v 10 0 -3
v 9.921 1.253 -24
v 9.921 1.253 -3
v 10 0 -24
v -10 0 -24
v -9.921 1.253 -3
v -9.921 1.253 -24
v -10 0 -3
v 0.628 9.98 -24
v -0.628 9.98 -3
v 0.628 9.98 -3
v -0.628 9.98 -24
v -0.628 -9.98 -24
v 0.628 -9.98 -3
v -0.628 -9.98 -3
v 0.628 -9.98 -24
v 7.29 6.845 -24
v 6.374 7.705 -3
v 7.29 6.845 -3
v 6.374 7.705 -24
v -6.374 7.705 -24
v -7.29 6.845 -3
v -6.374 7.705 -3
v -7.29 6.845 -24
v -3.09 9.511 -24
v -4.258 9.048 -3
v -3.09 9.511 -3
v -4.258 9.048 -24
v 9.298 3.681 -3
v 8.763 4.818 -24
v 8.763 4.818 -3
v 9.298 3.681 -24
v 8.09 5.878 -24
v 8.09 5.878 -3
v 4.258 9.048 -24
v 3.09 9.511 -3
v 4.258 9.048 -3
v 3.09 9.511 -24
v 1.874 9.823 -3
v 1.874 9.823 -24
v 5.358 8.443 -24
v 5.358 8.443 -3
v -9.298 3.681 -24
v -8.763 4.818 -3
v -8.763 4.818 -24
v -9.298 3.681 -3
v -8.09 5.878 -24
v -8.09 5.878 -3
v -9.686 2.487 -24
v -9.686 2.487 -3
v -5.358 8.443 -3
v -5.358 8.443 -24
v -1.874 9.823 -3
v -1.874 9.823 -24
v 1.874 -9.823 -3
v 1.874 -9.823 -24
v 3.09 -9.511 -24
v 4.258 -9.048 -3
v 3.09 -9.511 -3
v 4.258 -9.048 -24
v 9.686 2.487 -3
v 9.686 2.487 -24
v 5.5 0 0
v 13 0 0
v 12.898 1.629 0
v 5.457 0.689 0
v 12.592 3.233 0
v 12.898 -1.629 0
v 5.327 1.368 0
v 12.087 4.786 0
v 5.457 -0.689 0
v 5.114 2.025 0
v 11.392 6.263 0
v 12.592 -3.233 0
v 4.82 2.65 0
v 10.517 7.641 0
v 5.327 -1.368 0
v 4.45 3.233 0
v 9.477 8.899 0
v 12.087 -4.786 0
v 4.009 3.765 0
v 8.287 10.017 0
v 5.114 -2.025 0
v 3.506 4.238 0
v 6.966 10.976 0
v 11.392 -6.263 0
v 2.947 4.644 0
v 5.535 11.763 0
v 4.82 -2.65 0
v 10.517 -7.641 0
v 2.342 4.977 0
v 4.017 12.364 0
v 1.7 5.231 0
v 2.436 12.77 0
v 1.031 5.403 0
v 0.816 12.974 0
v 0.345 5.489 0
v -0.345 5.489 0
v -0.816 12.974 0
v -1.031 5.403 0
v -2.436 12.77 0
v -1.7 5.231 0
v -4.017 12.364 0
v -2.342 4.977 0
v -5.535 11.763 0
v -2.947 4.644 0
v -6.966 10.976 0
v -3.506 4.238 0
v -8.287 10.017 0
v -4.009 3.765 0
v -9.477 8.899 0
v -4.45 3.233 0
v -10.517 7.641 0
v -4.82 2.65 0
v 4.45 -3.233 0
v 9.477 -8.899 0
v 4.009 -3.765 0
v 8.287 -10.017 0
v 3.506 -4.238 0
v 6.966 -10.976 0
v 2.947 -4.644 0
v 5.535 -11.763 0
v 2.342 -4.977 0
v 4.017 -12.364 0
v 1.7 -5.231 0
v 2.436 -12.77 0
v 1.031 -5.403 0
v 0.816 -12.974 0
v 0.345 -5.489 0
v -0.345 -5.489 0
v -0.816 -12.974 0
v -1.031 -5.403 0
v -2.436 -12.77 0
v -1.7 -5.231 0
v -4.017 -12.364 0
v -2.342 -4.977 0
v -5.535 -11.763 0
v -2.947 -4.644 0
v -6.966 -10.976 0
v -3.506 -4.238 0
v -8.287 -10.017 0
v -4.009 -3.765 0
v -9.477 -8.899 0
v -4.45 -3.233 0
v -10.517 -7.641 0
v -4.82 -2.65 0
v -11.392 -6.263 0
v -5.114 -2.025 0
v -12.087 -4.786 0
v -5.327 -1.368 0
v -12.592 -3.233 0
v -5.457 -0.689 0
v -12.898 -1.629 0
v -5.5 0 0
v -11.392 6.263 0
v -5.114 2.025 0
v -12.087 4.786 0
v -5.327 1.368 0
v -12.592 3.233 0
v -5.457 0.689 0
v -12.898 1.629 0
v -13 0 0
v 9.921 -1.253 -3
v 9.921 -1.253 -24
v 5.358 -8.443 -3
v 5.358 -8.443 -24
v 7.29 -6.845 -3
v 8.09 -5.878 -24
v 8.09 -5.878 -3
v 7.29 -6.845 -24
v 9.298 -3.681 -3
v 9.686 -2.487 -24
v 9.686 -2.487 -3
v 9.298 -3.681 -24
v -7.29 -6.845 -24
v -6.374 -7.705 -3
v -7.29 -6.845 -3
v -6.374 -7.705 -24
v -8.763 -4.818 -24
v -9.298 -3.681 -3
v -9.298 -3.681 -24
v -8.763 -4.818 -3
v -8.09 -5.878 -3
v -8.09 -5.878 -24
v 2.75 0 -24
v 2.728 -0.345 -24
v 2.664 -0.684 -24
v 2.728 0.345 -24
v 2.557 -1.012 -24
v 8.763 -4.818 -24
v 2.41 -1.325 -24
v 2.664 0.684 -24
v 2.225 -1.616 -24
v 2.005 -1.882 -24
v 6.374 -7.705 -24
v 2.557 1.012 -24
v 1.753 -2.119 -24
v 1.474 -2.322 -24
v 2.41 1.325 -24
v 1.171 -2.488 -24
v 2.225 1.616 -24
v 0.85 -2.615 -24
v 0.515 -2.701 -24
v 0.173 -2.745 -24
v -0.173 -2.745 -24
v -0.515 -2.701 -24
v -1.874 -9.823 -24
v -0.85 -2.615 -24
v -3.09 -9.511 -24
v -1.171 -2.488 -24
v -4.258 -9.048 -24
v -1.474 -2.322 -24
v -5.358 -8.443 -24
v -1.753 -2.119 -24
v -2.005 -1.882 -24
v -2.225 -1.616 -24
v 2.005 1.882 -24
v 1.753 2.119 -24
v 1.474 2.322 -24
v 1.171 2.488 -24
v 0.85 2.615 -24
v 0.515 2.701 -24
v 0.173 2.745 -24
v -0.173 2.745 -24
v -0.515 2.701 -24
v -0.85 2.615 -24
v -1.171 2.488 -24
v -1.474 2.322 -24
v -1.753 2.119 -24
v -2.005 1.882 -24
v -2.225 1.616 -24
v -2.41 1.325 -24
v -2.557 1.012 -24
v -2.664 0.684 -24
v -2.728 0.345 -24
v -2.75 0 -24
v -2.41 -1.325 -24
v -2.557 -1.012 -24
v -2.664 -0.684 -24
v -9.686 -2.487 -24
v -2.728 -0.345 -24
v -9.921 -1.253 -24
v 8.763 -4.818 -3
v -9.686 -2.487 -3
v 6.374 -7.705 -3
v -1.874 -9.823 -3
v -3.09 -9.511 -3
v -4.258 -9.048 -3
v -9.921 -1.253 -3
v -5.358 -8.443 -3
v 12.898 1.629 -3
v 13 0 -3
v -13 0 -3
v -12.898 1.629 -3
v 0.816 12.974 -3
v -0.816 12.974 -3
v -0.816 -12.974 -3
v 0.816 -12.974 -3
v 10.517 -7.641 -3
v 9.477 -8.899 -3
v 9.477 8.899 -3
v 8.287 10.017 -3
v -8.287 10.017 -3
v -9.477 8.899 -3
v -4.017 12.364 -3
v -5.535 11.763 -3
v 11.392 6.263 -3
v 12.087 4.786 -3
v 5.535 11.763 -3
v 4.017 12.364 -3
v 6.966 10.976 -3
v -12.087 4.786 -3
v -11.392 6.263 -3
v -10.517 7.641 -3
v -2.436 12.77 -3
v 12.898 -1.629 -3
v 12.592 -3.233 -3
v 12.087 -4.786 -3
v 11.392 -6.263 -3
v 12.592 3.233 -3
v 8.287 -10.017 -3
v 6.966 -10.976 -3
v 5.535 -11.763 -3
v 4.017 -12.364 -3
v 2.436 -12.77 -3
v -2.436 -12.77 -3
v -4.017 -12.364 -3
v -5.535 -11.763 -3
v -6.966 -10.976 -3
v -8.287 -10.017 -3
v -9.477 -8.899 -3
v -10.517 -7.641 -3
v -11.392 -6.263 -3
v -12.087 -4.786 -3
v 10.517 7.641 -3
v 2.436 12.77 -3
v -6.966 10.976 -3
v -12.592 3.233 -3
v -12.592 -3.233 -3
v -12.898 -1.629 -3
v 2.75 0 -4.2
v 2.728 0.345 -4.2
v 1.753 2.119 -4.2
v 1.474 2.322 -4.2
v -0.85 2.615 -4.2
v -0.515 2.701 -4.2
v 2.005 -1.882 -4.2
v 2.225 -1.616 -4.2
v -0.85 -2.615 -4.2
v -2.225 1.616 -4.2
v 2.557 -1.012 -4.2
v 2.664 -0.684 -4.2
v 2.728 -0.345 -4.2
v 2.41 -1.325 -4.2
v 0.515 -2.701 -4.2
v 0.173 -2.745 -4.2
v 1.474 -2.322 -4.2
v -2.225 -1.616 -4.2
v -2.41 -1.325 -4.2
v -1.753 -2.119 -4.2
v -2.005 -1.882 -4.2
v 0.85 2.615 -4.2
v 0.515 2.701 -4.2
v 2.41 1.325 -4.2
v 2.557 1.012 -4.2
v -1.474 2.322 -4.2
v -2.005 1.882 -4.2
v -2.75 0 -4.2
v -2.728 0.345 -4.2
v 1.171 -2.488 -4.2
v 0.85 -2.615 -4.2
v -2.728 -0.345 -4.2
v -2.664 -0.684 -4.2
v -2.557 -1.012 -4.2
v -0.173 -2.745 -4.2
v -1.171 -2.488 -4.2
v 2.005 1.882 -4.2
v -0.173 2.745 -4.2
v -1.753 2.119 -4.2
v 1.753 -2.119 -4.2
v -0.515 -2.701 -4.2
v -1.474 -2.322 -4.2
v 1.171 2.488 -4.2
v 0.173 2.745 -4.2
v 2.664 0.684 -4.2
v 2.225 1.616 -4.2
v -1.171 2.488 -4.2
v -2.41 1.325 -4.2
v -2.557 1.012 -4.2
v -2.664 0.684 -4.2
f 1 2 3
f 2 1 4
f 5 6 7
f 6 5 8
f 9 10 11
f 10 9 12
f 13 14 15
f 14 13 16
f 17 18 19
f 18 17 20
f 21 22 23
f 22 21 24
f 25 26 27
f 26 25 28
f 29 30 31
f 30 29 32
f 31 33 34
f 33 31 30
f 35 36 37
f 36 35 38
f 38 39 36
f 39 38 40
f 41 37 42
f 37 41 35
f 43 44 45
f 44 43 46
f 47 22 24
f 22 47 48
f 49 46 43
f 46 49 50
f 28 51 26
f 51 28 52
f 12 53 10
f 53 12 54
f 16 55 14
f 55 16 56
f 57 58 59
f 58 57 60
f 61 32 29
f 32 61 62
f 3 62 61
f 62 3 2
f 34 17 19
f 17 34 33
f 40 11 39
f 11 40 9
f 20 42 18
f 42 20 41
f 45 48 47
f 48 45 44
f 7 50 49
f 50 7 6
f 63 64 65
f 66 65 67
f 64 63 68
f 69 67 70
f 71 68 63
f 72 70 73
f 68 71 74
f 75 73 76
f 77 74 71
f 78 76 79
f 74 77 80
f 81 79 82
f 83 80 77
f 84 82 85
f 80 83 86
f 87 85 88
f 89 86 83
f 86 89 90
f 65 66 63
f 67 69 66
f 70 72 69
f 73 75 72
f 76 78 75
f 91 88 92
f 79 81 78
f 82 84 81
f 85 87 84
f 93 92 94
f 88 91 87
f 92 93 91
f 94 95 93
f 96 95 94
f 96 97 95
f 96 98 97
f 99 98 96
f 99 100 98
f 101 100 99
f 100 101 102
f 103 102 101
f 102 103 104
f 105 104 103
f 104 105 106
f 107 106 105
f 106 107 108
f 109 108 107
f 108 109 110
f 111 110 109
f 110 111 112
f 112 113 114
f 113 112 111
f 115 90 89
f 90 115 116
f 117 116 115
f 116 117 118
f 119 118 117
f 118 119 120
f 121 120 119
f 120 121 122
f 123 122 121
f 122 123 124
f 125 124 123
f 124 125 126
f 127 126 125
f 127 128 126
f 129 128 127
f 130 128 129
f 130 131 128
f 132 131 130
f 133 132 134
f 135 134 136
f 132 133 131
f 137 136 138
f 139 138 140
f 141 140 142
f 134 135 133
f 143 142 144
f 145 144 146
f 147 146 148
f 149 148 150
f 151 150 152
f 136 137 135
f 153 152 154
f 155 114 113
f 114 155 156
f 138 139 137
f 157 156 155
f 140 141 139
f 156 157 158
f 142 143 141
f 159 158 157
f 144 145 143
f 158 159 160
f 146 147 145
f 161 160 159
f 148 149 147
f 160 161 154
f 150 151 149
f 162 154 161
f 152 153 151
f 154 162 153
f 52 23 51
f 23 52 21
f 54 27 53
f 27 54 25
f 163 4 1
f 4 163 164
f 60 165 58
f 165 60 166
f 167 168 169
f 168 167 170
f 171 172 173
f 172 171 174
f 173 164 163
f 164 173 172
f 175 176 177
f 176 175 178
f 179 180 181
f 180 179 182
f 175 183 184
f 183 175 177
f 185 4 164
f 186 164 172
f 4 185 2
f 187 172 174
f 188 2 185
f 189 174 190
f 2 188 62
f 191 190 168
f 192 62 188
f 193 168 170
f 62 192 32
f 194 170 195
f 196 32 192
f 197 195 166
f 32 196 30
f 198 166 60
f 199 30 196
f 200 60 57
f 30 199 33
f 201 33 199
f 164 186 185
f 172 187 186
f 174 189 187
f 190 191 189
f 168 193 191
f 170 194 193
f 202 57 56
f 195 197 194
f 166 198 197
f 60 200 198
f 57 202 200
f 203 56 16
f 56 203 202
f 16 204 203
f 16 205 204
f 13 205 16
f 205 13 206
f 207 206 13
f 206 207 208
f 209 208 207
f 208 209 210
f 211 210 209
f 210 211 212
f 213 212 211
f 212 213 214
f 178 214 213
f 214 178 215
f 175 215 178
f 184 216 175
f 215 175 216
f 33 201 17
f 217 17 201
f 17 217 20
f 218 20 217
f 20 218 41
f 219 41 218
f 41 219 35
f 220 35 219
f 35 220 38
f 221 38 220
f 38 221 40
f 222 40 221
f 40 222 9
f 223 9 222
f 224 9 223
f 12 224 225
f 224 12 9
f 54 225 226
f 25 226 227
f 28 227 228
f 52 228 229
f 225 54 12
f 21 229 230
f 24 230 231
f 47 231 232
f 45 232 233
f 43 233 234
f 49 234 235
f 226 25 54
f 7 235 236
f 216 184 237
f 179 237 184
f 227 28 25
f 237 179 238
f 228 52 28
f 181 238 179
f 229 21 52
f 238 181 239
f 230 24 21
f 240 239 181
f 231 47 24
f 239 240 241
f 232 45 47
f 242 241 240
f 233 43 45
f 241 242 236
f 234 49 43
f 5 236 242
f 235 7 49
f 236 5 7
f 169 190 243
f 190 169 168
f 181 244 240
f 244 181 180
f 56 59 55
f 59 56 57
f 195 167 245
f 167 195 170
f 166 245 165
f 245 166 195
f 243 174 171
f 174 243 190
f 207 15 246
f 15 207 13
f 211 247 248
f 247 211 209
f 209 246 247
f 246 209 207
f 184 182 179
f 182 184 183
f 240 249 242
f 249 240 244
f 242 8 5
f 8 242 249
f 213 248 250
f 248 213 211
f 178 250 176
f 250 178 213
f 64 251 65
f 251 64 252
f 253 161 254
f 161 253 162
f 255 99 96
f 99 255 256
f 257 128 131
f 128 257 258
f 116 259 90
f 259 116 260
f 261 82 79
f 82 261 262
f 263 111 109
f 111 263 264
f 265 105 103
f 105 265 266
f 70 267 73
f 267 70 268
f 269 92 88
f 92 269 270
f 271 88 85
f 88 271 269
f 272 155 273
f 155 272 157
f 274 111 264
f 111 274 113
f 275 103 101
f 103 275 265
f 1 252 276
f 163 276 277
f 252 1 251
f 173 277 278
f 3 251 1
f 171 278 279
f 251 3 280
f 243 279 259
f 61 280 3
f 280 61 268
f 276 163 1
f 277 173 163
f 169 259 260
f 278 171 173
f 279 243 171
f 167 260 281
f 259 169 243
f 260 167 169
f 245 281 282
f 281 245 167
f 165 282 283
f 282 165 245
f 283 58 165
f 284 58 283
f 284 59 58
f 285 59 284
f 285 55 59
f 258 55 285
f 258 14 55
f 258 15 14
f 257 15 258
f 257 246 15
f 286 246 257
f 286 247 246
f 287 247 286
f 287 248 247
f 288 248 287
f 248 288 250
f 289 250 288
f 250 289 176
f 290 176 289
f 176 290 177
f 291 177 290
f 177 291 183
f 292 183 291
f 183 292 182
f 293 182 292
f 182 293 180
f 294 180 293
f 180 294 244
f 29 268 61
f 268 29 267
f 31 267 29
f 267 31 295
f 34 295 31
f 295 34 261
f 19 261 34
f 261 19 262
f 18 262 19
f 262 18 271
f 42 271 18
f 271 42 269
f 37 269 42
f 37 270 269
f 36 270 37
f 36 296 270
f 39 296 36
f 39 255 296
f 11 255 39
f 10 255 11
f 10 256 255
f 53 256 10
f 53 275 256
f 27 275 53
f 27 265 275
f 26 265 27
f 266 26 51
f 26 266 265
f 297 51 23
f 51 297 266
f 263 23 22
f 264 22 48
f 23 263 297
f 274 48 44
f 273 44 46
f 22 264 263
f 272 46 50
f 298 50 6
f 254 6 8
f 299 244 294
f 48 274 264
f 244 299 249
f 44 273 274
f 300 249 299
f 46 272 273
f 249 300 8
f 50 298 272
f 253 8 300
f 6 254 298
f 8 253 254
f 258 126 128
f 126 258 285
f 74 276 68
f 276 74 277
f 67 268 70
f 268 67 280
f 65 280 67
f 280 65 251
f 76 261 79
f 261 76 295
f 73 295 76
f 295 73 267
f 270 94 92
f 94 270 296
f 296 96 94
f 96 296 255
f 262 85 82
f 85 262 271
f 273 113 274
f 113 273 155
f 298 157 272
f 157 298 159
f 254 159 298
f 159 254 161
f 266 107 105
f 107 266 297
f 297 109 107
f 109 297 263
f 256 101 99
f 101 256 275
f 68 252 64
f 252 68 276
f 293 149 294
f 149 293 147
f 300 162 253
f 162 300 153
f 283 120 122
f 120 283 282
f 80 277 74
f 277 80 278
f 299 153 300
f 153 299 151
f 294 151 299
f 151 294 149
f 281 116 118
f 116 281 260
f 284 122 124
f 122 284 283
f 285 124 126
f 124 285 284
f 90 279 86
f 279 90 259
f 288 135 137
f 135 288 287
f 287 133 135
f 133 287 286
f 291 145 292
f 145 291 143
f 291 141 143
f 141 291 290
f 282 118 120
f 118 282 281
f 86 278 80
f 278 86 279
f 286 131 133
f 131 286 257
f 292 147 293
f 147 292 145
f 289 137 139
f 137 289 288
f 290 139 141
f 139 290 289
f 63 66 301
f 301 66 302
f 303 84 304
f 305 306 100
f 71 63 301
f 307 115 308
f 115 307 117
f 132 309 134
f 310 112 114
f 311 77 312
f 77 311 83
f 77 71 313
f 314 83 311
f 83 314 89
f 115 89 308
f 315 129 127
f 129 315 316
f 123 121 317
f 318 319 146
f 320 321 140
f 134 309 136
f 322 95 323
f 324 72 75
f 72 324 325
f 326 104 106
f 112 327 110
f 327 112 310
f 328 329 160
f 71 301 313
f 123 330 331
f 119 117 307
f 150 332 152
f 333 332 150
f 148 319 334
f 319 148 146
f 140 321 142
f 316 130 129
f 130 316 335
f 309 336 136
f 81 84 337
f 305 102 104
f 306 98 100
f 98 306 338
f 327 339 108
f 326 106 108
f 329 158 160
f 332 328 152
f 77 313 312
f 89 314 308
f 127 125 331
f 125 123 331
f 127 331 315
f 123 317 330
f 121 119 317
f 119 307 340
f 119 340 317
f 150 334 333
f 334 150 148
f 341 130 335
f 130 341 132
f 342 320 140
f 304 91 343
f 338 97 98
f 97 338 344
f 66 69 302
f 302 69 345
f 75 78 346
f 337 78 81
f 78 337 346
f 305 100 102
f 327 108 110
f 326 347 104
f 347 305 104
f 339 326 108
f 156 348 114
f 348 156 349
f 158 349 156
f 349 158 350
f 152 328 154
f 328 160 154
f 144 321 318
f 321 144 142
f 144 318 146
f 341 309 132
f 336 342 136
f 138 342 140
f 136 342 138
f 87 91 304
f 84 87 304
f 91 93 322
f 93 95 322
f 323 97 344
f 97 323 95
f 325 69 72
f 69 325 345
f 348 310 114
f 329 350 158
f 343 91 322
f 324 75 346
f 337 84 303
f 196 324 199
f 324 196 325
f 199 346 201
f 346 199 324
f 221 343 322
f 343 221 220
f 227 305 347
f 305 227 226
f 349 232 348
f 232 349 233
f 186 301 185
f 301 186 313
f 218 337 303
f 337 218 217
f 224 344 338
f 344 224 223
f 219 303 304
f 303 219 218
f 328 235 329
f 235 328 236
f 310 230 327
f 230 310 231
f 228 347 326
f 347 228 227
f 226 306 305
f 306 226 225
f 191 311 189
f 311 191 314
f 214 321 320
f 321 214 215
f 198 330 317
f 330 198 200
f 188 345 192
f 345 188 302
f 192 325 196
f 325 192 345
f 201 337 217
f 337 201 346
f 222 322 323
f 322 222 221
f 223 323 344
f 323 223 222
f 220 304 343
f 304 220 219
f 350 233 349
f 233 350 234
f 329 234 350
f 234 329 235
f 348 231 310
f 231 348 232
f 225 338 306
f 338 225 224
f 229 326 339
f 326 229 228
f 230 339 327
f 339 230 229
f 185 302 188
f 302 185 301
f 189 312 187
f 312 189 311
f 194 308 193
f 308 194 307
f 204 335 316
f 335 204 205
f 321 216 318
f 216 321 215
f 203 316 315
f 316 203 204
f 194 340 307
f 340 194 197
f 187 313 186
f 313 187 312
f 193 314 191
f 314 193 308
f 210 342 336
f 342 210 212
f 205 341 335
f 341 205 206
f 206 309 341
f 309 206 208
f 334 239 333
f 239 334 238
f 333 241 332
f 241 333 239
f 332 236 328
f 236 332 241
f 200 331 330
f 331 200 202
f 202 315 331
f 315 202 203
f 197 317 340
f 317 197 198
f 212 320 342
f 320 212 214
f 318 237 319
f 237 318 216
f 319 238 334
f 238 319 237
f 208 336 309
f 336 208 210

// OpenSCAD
$fn = 50;


difference() {
	union() {
		translate(v = [0, 0, -24.0000000000]) {
			cylinder(h = 24, r = 10.0000000000);
		}
		translate(v = [0, 0, -3.0000000000]) {
			cylinder(h = 3, r = 13.0000000000);
		}
	}
	union() {
		translate(v = [0, 0, 0]) {
			rotate(a = [0, 0, 0]) {
				difference() {
					union() {
						#translate(v = [0, 0, -24.0000000000]) {
							cylinder(h = 24, r = 2.2500000000);
						}
						#translate(v = [0, 0, -4.2000000000]) {
							cylinder(h = 4.2000000000, r = 10.0000000000, r1 = 2.7500000000, r2 = 5.5000000000);
						}
						#translate(v = [0, 0, -24.0000000000]) {
							cylinder(h = 24, r = 2.7500000000);
						}
						#translate(v = [0, 0, -24.0000000000]) {
							cylinder(h = 24, r = 2.2500000000);
						}
					}
					union();
				}
			}
		}
	}
}
